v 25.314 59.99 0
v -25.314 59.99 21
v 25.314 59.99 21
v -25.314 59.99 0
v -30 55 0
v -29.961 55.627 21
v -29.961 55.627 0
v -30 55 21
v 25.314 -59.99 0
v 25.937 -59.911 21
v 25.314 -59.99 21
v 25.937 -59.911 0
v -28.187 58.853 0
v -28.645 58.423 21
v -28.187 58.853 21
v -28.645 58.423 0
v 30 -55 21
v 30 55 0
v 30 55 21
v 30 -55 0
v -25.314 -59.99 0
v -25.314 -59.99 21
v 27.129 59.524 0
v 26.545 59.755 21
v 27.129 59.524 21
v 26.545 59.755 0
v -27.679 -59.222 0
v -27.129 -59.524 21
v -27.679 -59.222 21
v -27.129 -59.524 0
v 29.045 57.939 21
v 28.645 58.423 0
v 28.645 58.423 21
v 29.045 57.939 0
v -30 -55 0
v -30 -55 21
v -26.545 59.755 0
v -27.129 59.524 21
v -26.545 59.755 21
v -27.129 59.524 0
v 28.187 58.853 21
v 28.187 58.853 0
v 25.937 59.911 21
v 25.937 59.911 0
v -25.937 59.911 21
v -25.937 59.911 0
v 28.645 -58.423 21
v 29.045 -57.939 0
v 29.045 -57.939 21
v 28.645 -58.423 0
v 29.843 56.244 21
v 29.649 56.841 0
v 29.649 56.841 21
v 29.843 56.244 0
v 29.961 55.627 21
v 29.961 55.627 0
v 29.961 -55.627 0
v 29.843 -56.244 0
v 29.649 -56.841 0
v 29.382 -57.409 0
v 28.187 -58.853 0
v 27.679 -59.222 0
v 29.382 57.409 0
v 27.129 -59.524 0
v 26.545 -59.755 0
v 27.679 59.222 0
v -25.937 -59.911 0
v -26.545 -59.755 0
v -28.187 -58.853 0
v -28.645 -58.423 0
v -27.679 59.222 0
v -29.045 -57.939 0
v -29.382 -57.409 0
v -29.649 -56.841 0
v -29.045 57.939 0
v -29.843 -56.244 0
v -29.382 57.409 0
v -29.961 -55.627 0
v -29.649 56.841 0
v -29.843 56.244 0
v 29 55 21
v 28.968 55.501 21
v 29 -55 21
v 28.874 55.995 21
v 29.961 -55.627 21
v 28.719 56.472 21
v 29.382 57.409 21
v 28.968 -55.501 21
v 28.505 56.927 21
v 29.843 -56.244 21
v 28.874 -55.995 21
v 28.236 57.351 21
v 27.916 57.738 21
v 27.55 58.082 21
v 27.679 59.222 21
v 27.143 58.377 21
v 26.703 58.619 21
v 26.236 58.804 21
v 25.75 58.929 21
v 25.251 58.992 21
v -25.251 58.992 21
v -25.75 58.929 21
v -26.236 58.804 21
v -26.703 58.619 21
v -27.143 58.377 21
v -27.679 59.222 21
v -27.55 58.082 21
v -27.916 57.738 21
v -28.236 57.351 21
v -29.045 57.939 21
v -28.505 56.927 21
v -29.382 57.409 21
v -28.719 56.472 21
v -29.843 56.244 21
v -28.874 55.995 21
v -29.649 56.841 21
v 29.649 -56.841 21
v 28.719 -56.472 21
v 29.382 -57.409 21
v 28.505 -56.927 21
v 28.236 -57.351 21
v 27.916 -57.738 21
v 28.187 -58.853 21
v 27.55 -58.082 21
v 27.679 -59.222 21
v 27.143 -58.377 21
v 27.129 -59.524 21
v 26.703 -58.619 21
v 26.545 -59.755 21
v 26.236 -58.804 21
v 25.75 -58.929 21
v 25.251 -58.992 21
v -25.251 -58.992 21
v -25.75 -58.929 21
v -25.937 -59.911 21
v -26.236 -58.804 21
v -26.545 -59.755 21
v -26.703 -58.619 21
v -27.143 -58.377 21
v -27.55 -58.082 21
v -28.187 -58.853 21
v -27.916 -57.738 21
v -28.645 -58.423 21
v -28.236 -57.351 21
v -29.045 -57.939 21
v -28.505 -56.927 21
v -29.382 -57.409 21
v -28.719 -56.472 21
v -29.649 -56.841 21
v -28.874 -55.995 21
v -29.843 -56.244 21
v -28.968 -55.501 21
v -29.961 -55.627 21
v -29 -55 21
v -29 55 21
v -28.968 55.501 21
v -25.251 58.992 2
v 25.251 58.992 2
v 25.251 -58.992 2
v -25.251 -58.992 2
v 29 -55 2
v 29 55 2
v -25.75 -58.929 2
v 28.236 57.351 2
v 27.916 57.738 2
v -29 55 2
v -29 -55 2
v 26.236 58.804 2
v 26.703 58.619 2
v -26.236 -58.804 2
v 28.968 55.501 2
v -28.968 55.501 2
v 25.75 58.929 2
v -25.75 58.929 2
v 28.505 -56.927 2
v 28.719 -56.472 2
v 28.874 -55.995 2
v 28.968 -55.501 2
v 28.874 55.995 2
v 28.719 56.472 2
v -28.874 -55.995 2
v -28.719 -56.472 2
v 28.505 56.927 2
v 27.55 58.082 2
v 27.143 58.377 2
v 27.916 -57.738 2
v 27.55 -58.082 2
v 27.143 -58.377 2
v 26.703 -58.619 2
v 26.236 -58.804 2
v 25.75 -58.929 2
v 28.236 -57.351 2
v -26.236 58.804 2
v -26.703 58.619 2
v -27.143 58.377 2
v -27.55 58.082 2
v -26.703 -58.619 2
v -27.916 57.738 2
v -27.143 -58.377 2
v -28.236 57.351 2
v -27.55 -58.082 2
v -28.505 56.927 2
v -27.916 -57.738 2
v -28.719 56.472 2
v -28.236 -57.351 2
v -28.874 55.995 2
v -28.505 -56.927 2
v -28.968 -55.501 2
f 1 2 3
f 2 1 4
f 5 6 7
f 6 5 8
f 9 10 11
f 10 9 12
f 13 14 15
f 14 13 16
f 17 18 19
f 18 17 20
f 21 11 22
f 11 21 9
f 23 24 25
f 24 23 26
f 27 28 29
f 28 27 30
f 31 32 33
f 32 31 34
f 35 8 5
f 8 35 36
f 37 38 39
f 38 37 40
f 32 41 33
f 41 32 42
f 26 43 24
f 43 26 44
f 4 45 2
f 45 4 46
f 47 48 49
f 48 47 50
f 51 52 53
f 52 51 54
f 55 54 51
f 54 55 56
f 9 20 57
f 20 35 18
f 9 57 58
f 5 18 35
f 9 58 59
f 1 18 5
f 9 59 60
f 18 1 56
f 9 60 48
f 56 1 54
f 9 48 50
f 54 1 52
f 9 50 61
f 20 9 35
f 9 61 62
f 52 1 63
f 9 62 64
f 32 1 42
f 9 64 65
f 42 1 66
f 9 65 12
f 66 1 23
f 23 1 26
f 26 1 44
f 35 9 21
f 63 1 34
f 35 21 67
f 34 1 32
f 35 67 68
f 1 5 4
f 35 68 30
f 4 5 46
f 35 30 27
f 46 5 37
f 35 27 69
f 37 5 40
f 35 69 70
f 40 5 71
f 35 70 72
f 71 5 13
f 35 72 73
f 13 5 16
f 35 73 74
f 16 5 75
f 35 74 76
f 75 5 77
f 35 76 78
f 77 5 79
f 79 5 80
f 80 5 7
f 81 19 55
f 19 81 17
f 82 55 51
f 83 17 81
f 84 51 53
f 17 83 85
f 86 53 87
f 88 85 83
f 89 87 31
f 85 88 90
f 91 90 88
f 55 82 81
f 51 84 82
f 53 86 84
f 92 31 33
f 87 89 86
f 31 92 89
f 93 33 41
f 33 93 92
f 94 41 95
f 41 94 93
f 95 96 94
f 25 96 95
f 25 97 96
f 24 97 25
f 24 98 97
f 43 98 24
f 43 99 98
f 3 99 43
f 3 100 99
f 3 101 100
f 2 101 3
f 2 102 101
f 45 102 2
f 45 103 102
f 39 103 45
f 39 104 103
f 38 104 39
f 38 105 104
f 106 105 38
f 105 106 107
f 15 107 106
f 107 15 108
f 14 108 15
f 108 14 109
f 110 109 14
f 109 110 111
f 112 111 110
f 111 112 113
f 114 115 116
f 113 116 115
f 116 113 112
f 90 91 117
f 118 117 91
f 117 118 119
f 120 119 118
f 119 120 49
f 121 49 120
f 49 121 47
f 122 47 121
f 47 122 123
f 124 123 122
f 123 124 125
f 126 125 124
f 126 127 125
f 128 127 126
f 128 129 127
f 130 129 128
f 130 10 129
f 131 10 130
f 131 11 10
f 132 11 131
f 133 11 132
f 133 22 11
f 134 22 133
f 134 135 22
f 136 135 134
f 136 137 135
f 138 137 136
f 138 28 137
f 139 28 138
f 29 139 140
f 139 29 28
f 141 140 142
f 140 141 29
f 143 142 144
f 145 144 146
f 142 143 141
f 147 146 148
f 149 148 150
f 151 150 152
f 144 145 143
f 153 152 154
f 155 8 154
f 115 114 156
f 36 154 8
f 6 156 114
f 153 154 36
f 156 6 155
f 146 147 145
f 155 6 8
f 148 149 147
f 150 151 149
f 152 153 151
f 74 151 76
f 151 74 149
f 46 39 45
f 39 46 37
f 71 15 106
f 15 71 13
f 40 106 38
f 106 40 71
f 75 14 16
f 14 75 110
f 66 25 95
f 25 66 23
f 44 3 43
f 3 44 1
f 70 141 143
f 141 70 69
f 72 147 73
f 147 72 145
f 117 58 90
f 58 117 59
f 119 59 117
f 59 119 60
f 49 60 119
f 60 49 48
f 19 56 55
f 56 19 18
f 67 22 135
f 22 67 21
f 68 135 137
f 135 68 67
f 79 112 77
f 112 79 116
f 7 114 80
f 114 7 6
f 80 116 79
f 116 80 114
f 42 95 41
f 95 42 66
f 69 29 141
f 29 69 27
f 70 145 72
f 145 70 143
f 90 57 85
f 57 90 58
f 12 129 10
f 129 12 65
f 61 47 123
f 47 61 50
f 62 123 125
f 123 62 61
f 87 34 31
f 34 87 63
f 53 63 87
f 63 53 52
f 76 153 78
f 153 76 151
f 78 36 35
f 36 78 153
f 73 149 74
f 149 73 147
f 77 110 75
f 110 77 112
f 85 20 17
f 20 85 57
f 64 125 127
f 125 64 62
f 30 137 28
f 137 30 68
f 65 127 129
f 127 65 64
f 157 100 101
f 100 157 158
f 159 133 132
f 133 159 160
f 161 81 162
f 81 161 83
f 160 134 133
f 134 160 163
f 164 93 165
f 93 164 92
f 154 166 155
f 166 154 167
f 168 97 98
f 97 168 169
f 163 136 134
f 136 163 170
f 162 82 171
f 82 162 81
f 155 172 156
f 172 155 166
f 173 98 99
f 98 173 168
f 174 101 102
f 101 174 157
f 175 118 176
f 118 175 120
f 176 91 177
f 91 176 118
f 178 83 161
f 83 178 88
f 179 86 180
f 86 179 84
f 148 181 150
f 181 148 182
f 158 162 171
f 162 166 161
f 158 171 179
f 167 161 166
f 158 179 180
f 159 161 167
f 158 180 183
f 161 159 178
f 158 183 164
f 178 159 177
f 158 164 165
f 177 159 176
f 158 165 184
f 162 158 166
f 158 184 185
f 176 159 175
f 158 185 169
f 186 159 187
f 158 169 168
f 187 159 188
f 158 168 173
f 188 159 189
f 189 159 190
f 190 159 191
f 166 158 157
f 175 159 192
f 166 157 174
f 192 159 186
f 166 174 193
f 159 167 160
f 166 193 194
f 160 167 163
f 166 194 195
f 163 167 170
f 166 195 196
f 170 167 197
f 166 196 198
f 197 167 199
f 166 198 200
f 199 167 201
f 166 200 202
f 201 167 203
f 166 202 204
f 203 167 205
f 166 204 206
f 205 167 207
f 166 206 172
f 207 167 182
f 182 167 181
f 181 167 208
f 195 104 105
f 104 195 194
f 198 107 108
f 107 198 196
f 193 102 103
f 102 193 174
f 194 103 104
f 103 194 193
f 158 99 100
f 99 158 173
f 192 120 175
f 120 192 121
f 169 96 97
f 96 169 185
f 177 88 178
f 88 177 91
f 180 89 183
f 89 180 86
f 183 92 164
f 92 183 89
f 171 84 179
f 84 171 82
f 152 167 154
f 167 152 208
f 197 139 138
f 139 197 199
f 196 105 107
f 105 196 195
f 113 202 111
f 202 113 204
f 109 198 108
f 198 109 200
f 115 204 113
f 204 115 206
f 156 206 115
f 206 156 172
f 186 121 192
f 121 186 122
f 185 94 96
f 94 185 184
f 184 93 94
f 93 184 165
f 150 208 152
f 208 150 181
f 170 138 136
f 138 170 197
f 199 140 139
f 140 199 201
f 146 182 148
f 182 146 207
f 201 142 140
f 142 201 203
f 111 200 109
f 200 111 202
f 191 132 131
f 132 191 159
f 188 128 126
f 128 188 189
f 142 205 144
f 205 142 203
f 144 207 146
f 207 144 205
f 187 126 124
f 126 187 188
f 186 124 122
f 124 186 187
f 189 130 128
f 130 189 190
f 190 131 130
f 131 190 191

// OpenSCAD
$fn = 50;


difference() {
	union() {
		hull() {
			translate(v = [-25.0000000000, 55.0000000000, 0]) {
				cylinder(h = 21, r = 5);
			}
			translate(v = [25.0000000000, 55.0000000000, 0]) {
				cylinder(h = 21, r = 5);
			}
			translate(v = [-25.0000000000, -55.0000000000, 0]) {
				cylinder(h = 21, r = 5);
			}
			translate(v = [25.0000000000, -55.0000000000, 0]) {
				cylinder(h = 21, r = 5);
			}
		}
	}
	union() {
		translate(v = [0, 0, 2]) {
			hull() {
				translate(v = [-25.0000000000, 55.0000000000, 0]) {
					cylinder(h = 19, r = 4);
				}
				translate(v = [25.0000000000, 55.0000000000, 0]) {
					cylinder(h = 19, r = 4);
				}
				translate(v = [-25.0000000000, -55.0000000000, 0]) {
					cylinder(h = 19, r = 4);
				}
				translate(v = [25.0000000000, -55.0000000000, 0]) {
					cylinder(h = 19, r = 4);
				}
			}
		}
	}
}
